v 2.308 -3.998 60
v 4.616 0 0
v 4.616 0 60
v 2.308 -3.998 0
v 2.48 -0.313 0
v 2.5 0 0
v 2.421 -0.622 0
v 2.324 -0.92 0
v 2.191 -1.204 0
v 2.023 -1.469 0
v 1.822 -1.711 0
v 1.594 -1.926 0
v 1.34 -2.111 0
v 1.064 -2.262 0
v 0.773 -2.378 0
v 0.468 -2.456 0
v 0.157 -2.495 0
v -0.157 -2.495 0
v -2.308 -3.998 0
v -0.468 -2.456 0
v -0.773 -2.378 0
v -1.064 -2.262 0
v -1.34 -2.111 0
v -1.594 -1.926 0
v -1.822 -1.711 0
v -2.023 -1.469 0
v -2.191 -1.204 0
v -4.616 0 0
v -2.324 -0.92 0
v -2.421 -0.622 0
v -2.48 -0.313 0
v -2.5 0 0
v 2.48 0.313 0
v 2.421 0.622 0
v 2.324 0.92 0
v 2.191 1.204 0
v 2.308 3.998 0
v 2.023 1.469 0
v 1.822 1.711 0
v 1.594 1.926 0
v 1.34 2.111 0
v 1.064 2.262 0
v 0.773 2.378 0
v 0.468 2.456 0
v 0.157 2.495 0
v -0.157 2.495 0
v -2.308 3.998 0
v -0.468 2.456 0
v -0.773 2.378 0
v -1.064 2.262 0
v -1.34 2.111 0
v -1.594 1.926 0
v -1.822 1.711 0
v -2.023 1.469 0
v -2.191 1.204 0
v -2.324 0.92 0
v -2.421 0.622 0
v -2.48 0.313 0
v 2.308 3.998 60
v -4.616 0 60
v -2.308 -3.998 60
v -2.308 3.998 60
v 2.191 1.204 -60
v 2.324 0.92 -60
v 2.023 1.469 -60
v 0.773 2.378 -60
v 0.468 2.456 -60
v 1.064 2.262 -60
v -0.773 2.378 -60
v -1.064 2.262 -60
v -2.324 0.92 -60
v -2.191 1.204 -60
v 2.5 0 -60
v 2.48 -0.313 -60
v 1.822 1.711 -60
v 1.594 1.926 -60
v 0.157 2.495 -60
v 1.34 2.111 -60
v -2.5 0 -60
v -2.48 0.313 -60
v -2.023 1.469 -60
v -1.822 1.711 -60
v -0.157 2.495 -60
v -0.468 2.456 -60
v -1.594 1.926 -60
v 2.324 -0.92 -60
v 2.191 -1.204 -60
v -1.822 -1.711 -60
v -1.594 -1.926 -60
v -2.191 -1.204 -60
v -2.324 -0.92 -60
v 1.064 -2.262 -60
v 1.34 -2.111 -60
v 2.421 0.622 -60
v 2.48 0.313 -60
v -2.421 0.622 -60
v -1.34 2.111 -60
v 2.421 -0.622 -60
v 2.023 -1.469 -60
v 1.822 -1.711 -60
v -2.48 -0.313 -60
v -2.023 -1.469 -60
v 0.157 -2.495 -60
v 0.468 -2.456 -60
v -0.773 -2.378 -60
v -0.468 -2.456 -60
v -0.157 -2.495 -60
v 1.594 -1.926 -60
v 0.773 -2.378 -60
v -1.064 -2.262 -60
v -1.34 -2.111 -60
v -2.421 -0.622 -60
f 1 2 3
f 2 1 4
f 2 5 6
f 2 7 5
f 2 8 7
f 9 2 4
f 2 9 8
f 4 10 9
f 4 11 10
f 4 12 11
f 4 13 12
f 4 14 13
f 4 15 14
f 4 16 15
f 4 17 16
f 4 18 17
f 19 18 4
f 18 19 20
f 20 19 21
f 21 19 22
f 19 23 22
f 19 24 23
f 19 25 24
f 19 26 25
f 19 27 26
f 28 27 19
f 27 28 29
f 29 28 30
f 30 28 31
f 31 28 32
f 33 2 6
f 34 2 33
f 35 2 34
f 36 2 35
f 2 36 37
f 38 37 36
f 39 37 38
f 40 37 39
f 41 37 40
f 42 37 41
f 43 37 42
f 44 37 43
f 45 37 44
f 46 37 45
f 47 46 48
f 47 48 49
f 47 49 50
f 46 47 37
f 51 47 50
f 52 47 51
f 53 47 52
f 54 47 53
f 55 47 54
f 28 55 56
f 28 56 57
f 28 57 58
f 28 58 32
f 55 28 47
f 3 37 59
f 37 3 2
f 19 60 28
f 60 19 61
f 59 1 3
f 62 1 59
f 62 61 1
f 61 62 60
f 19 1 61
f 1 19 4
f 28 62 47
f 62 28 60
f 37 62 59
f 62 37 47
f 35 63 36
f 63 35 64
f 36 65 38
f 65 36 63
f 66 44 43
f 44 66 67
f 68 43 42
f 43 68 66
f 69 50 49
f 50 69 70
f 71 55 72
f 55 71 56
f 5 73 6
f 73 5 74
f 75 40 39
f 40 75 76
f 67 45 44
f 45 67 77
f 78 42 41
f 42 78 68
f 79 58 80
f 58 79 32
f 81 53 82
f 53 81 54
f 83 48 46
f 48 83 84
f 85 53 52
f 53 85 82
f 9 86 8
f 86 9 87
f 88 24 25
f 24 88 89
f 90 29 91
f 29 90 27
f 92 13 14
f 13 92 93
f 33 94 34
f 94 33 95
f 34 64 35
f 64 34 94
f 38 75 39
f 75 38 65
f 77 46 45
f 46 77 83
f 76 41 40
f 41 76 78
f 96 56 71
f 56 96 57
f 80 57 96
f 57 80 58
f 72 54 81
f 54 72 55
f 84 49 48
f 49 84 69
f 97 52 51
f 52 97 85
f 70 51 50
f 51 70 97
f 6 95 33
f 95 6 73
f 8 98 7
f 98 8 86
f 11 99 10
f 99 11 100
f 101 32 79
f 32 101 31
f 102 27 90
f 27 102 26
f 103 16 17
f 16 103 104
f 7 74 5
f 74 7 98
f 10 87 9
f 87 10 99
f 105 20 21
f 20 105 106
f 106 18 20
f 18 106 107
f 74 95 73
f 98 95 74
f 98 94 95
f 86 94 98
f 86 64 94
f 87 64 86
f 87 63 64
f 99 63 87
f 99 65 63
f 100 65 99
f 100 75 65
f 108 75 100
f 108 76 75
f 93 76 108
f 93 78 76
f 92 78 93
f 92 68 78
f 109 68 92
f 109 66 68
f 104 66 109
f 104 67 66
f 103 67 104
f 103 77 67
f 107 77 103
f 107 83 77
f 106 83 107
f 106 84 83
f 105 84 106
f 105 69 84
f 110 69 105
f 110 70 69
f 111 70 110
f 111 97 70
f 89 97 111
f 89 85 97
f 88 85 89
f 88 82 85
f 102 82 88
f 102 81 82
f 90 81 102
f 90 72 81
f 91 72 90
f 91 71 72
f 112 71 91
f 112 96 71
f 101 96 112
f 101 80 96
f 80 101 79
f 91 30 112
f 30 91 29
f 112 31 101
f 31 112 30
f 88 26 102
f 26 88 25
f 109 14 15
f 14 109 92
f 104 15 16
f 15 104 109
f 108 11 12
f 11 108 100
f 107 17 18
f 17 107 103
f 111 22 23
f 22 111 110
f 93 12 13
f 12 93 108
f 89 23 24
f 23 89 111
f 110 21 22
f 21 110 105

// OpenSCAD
$fn = 50;


difference() {
	union() {
		translate(v = [0, 0, 0]) {
			rotate(a = [0, 0, 0]) {
				translate(v = [0, 0, 0]) {
					rotate(a = [0, 0, 0]) {
						linear_extrude(height = 60) {
							polygon(points = [[4.6160000000, 0.0000000000], [2.3080000000, 3.9975732639], [-2.3080000000, 3.9975732639], [-4.6160000000, 0.0000000000], [-2.3080000000, -3.9975732639], [2.3080000000, -3.9975732639]]);
						}
					}
				}
			}
		}
		translate(v = [0, 0, -60]) {
			rotate(a = [0, 0, 0]) {
				cylinder(h = 60, r = 2.5000000000);
			}
		}
	}
	union();
}
